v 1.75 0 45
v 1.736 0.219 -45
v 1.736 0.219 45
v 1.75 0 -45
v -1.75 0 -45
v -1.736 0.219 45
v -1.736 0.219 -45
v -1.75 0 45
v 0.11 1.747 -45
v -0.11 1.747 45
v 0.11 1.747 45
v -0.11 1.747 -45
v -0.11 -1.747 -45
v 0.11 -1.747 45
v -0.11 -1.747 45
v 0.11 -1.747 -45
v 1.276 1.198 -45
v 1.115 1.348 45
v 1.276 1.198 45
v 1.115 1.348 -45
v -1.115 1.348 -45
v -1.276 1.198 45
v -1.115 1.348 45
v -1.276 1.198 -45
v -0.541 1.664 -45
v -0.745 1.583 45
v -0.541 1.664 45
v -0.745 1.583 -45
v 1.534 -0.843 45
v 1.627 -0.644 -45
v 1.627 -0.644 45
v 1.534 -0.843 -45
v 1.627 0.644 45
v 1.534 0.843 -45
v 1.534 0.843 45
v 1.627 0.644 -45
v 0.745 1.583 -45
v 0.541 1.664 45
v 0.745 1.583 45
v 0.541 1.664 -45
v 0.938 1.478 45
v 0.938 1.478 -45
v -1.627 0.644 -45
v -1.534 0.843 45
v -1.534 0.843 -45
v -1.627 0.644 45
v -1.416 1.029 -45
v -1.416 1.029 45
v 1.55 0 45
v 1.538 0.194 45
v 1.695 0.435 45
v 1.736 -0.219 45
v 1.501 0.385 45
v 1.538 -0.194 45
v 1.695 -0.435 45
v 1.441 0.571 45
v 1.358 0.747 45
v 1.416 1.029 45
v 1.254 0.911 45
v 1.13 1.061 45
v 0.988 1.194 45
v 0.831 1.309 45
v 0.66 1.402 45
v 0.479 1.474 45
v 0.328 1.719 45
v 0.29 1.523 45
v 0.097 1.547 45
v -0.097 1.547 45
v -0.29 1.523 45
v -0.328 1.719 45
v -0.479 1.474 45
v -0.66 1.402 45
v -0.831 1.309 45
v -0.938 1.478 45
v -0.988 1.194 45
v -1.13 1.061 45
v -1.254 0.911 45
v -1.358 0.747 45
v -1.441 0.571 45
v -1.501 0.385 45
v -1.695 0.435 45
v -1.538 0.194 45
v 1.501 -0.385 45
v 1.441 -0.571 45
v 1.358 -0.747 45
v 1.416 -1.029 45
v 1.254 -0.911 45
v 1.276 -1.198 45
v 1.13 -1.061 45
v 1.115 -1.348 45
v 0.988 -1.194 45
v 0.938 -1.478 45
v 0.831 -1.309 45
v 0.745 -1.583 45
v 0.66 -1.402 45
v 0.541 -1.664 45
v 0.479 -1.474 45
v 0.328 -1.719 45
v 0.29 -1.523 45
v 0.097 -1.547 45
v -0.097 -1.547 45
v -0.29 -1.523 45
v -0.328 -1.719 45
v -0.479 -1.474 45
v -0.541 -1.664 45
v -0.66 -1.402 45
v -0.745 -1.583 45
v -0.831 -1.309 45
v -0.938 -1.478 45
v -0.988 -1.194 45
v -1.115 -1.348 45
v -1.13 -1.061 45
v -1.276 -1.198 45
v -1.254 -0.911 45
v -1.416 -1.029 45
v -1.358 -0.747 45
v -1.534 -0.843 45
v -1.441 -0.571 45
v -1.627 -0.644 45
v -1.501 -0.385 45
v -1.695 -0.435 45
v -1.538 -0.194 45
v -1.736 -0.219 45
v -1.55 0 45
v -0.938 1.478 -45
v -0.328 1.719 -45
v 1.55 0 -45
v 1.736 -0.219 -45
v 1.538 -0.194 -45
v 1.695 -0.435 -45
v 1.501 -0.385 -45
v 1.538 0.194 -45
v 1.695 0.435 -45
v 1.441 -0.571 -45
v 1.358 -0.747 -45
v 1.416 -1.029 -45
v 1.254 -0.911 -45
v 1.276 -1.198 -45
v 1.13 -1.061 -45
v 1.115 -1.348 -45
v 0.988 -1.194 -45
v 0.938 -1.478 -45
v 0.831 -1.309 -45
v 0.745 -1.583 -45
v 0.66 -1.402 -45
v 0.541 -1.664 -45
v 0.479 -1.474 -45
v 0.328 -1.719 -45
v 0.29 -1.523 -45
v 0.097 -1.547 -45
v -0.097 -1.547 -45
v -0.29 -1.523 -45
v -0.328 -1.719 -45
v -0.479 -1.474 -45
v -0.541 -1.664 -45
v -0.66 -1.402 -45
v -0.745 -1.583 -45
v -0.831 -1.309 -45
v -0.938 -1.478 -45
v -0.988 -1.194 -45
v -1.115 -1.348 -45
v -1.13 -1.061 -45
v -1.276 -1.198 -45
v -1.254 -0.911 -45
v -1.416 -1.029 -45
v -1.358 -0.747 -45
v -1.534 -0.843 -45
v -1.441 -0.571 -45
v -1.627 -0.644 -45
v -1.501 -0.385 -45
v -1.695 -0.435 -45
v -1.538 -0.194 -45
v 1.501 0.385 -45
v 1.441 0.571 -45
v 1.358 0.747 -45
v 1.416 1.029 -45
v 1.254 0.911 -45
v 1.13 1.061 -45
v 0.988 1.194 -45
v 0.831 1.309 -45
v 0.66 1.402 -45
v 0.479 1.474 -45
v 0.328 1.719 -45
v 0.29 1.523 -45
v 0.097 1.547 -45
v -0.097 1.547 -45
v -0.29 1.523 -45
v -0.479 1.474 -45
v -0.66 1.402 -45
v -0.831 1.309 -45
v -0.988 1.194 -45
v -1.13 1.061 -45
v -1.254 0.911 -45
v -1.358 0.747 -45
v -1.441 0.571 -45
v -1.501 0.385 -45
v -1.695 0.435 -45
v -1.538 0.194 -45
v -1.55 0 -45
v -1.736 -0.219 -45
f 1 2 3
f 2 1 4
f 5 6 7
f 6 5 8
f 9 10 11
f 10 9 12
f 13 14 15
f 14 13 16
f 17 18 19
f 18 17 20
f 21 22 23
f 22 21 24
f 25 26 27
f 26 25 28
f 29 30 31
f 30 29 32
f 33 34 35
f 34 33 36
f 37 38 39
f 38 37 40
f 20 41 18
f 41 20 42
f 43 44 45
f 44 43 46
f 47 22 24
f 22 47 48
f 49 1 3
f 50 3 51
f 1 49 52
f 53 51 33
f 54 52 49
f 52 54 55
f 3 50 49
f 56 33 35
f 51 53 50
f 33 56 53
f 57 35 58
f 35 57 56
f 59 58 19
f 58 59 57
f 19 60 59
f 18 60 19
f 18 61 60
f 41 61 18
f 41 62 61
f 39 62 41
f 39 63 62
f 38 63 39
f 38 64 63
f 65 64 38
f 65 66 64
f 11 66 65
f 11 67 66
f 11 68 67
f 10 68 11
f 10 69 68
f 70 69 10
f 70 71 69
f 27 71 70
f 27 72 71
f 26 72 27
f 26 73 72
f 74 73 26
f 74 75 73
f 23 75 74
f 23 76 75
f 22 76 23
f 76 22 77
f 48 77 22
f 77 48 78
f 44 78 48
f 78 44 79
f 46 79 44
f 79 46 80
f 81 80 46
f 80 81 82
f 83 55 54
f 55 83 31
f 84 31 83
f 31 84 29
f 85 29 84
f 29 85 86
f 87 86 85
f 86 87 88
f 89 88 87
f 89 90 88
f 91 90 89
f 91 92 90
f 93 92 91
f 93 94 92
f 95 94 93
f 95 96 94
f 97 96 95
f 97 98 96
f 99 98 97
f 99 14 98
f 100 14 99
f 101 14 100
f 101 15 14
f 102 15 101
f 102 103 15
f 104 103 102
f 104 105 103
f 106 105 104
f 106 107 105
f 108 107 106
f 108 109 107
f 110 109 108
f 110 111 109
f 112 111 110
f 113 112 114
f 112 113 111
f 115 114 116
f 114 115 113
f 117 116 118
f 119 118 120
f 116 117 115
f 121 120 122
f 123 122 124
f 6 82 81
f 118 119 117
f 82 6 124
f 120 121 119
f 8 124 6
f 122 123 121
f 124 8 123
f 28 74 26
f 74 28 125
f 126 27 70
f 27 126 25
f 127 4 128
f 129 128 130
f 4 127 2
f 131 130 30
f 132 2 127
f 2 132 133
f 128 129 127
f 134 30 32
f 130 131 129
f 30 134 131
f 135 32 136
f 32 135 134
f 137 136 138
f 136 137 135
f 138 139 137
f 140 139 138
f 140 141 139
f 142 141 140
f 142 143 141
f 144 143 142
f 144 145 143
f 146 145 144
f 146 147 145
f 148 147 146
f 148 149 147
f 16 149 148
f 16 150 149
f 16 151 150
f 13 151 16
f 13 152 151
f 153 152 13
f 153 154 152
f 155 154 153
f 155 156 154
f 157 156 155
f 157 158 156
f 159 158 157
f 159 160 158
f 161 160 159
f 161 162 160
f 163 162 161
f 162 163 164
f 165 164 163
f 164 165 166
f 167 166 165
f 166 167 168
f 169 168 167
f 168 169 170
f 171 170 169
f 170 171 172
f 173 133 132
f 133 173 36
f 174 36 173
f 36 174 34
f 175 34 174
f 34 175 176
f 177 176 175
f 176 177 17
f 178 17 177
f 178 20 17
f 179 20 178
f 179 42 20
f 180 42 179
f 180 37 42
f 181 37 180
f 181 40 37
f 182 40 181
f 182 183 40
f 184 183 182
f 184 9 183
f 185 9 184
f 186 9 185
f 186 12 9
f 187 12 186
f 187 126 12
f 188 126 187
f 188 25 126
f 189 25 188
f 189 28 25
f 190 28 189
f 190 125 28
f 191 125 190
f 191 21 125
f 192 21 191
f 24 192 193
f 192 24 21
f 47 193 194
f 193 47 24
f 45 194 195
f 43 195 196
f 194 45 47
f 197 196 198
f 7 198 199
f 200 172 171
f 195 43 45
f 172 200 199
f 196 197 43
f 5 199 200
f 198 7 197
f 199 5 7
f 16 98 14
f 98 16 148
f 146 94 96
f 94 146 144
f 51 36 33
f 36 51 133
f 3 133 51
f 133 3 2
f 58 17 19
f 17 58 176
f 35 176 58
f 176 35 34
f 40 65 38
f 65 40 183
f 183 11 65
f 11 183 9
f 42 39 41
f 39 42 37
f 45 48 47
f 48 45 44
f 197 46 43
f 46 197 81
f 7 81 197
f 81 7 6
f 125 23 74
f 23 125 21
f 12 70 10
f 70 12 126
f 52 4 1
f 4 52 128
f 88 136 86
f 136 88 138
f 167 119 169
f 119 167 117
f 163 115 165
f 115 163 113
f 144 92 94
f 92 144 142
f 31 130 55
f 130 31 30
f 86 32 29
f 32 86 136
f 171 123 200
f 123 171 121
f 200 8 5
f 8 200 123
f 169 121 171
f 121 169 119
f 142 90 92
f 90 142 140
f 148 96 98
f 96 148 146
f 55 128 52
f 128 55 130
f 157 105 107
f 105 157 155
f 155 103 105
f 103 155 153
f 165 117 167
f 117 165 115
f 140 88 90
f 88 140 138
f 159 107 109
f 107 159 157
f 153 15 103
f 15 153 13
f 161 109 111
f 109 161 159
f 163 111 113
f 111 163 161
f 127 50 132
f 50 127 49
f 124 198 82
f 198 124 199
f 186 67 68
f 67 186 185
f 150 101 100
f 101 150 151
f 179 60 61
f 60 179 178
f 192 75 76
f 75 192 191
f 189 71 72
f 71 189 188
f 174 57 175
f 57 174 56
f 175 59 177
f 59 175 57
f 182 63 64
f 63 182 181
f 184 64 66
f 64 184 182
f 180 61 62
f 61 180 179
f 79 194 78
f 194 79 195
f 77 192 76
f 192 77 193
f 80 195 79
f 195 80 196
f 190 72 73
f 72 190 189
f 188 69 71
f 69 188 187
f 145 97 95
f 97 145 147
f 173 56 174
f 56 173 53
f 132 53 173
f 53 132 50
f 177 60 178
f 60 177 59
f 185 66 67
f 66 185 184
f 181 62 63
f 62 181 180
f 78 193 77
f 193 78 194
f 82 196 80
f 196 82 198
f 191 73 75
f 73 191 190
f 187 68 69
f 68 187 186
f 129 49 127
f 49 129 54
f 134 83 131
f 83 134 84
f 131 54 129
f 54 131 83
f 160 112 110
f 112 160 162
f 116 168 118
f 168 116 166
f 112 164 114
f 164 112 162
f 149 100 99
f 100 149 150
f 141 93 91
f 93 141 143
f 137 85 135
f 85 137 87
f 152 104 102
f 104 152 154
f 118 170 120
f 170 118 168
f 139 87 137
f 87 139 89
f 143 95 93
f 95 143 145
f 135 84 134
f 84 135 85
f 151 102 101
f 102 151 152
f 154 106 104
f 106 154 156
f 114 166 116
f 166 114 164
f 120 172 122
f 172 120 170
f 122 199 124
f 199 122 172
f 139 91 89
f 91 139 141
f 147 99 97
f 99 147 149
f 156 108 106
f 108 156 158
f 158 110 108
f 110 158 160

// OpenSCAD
$fn = 50;


difference() {
	union() {
		translate(v = [0, 0, -45.0000000000]) {
			cylinder(h = 90, r = 1.7500000000);
		}
	}
	union() {
		translate(v = [0, 0, -100.0000000000]) {
			cylinder(h = 200, r = 1.5500000000);
		}
	}
}
